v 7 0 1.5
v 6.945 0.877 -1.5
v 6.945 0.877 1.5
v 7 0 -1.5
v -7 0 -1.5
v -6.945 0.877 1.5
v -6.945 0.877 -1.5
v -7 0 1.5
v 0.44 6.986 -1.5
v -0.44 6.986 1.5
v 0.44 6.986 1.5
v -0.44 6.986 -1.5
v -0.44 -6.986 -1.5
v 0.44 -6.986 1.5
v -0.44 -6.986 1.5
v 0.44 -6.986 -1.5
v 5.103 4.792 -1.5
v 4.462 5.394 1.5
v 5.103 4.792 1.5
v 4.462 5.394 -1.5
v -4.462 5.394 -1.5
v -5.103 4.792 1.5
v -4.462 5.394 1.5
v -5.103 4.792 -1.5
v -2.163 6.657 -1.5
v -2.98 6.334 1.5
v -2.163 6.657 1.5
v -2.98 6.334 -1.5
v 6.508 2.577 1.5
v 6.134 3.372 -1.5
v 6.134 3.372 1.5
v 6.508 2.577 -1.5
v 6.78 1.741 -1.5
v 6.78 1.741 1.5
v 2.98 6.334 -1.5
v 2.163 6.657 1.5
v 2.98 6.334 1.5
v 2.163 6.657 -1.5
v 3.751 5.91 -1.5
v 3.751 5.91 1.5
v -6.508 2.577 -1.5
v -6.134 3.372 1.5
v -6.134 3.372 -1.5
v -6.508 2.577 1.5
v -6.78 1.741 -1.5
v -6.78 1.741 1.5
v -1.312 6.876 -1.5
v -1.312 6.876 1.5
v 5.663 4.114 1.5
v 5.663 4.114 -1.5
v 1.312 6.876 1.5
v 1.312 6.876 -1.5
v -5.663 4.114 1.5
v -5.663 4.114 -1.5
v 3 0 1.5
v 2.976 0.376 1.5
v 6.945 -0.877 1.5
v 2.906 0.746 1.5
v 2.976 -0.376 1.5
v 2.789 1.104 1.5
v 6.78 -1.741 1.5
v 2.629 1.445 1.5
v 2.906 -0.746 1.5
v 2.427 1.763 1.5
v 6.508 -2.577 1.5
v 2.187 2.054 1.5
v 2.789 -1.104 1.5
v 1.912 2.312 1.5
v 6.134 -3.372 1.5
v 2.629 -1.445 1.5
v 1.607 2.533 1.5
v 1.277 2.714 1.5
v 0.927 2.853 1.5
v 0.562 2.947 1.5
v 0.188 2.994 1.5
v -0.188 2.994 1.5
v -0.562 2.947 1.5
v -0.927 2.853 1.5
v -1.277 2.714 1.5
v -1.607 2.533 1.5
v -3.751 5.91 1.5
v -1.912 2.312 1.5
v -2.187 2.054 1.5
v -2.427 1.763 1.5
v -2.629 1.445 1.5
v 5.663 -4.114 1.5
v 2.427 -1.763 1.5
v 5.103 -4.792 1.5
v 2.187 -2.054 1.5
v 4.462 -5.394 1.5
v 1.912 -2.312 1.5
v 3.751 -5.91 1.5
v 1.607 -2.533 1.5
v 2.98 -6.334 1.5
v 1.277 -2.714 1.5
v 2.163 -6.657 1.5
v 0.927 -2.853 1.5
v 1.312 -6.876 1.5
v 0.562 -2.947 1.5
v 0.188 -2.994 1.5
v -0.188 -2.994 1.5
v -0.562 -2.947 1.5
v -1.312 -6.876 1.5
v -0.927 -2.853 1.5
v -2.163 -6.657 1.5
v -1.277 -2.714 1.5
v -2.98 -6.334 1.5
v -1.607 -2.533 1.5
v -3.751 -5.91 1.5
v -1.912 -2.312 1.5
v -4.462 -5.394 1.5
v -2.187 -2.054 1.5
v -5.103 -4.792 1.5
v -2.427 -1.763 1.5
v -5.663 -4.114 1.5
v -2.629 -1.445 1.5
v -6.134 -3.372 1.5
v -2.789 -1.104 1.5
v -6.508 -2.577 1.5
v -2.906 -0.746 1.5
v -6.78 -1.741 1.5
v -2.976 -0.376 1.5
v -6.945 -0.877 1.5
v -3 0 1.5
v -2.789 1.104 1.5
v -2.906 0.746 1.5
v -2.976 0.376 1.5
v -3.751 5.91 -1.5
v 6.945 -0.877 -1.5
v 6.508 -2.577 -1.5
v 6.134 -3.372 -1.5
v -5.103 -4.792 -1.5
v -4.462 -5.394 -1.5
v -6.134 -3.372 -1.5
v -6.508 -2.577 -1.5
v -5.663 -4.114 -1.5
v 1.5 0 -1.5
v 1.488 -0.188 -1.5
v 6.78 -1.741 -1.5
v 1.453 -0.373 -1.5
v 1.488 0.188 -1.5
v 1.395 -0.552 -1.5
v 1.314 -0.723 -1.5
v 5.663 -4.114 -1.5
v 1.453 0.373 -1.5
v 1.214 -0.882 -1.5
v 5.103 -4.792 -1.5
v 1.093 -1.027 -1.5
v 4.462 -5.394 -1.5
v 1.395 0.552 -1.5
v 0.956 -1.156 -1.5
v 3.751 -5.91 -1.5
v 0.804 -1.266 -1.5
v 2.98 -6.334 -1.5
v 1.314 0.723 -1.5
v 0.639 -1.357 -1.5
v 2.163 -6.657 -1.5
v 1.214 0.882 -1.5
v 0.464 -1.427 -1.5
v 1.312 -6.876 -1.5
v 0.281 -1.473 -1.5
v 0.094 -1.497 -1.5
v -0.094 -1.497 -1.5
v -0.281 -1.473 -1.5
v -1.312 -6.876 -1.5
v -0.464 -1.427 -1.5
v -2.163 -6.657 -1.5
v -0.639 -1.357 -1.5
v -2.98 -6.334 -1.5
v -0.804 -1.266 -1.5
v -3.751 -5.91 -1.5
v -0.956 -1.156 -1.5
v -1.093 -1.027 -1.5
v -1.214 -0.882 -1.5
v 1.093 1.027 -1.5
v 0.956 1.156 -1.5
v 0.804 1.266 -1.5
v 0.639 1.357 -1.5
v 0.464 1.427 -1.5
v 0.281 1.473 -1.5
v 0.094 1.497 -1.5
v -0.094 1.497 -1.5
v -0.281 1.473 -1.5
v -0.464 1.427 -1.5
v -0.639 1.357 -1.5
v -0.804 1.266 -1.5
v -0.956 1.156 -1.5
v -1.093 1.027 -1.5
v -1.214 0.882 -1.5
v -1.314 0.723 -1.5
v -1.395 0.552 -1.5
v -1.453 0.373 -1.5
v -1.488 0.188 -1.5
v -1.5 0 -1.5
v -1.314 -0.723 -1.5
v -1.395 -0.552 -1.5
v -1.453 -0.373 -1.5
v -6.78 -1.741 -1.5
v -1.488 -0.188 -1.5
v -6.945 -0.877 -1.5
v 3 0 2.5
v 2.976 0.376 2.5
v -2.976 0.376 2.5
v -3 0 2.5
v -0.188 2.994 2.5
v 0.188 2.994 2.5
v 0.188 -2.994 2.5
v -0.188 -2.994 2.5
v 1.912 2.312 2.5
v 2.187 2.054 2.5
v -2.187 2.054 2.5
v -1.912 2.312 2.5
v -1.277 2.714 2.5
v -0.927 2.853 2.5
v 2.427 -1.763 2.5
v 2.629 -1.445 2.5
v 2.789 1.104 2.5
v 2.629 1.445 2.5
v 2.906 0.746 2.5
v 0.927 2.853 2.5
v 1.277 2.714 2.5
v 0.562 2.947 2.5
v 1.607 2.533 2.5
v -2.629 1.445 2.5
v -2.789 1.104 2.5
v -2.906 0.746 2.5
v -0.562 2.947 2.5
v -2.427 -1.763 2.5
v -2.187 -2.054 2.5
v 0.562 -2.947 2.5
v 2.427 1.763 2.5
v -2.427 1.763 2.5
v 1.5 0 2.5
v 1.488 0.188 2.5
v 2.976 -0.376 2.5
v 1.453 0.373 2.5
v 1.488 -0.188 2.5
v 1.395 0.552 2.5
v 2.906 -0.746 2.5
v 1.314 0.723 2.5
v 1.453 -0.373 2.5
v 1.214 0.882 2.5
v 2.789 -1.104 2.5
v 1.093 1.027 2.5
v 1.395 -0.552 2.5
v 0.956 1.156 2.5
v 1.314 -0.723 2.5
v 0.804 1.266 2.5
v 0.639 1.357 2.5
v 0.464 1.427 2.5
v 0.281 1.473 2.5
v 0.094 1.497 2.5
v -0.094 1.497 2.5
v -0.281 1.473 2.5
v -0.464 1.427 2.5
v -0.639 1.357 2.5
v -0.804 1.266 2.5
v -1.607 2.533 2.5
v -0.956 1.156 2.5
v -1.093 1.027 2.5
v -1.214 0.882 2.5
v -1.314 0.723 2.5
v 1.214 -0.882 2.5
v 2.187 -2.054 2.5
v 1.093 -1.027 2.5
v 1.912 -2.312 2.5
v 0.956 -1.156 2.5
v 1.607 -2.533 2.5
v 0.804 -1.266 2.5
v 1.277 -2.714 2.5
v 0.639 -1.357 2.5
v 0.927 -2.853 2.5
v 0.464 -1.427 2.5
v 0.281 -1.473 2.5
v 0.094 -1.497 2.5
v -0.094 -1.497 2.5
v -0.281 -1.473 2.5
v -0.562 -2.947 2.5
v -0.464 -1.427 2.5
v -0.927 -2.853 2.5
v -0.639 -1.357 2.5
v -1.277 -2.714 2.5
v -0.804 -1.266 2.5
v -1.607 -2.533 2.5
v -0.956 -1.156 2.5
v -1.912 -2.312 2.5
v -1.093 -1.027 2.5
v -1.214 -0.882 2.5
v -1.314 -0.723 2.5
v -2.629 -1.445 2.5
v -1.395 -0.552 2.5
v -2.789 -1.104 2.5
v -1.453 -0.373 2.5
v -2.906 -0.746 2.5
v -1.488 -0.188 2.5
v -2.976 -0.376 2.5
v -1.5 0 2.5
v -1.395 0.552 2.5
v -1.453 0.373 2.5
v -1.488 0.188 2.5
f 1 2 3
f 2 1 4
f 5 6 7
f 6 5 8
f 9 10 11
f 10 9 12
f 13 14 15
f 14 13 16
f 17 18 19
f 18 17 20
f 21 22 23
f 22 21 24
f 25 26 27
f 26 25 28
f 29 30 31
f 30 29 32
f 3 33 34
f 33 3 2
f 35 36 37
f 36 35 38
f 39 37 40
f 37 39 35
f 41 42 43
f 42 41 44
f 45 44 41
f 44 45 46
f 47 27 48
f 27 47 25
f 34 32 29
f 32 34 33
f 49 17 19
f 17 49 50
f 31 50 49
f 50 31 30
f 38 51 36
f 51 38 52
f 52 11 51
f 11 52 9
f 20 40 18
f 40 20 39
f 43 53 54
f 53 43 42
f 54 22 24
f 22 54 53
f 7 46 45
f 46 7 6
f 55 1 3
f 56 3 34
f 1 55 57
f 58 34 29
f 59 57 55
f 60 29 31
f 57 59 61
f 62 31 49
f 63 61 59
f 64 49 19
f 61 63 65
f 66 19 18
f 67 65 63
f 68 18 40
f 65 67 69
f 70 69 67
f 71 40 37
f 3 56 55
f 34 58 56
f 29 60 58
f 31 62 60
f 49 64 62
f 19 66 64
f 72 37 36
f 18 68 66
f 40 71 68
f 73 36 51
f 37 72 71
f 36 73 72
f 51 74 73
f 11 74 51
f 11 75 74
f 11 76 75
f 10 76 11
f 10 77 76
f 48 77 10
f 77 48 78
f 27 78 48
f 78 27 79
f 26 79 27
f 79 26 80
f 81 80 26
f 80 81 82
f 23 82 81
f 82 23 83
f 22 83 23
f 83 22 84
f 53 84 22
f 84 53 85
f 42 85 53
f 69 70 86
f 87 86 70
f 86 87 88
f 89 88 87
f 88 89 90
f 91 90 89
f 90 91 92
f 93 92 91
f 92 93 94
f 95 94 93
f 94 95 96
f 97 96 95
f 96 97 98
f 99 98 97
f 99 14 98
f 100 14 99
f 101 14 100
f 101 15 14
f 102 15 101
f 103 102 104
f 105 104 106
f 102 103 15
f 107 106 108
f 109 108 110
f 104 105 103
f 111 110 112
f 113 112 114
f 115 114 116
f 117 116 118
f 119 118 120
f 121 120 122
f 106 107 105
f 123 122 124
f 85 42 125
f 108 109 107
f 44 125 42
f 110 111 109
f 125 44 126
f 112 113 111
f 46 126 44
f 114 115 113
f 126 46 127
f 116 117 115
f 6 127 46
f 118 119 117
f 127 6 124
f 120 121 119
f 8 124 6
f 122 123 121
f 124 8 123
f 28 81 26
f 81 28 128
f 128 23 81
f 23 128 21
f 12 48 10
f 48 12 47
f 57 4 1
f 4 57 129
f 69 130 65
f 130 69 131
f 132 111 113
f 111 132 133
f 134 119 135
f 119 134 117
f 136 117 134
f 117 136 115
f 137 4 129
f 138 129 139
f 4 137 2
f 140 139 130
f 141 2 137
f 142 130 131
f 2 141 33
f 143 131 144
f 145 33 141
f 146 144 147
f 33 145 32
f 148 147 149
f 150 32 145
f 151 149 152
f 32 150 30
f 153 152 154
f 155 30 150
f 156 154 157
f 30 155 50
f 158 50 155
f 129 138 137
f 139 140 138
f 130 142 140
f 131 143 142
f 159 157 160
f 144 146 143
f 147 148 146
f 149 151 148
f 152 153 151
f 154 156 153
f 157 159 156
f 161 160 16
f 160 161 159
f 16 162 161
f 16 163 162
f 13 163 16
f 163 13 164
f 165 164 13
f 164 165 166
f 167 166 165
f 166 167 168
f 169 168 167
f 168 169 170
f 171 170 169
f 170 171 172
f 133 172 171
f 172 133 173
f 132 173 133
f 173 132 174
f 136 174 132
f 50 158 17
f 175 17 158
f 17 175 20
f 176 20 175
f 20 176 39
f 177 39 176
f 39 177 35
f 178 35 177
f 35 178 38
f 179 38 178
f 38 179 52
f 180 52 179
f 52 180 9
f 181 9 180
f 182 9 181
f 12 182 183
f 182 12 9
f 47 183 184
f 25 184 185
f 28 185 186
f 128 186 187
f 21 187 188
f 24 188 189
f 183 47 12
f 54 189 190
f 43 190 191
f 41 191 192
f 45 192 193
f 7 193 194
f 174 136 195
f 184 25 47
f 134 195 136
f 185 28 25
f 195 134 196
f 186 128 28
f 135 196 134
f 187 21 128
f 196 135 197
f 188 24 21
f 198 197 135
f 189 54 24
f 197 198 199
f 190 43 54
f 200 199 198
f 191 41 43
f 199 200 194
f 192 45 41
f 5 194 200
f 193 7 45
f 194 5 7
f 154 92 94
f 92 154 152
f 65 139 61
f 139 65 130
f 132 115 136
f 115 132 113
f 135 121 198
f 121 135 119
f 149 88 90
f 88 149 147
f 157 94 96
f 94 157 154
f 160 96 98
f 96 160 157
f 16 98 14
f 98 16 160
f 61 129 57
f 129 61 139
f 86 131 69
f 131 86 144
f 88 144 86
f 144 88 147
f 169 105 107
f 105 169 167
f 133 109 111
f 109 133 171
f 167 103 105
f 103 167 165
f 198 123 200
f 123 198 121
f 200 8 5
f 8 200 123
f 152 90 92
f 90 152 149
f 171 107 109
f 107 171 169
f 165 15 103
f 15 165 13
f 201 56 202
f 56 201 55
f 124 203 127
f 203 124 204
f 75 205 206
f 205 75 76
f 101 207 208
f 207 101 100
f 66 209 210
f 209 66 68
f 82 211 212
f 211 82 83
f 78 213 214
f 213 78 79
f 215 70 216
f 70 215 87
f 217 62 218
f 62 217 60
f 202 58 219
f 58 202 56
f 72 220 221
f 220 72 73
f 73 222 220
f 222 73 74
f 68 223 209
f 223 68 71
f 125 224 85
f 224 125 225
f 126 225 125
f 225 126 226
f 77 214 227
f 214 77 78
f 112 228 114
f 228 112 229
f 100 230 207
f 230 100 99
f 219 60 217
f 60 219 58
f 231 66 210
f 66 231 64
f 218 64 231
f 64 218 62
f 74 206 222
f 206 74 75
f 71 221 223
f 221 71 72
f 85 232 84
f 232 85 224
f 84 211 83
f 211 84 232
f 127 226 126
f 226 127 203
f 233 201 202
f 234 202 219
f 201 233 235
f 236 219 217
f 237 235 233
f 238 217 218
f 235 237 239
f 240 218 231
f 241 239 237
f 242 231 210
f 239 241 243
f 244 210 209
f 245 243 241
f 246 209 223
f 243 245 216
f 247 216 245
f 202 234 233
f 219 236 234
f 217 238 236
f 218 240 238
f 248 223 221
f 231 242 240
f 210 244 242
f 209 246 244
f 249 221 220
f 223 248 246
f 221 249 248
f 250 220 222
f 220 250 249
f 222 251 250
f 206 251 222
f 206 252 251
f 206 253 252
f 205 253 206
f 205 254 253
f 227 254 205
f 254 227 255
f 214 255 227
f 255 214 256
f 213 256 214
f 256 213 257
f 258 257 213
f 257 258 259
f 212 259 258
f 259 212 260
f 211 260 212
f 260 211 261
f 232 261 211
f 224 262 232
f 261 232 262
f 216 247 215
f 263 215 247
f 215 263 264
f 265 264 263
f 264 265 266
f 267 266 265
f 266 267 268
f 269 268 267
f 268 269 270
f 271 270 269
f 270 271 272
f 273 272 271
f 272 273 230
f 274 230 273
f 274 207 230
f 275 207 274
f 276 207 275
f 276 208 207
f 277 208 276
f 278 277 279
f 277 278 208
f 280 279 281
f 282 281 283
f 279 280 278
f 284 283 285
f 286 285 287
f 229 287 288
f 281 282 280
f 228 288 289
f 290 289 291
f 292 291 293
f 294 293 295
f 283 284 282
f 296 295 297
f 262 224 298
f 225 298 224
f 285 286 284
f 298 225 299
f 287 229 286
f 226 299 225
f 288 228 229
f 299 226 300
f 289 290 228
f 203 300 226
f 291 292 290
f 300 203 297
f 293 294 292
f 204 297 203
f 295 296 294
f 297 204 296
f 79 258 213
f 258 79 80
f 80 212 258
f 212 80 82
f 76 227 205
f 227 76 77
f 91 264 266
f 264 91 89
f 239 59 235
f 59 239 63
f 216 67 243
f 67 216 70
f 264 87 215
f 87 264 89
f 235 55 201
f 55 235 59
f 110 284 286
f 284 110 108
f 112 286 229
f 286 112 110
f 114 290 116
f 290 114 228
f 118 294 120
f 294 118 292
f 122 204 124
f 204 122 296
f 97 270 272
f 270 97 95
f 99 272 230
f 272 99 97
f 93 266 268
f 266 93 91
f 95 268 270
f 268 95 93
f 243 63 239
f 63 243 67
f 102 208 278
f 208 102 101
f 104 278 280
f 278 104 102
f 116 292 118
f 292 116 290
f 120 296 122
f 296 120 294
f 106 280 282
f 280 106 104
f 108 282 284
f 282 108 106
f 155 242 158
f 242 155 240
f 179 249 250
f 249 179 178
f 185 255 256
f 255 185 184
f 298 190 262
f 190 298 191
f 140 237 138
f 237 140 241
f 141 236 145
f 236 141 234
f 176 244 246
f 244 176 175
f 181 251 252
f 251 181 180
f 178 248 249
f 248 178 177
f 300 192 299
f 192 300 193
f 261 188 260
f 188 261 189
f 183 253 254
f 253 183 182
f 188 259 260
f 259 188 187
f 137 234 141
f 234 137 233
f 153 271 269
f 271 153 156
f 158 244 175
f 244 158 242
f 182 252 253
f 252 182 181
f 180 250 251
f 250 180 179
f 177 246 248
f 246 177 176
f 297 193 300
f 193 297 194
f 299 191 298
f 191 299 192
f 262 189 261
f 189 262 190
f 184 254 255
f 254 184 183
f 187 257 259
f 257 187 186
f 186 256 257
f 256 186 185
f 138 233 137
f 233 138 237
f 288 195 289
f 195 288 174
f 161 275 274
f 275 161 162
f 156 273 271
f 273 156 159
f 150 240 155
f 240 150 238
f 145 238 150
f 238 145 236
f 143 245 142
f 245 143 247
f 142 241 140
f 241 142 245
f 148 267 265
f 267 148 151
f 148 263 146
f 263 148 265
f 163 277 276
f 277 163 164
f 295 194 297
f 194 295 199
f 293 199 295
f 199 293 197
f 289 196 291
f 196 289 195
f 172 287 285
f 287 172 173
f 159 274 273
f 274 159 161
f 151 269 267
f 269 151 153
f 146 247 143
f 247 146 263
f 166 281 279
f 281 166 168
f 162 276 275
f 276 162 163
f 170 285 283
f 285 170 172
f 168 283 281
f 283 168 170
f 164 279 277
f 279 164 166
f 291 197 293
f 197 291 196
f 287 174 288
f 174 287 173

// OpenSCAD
$fn = 50;


difference() {
	union() {
		translate(v = [0, 0, -1.5000000000]) {
			rotate(a = [0, 0, 0]) {
				cylinder(h = 3, r = 7.0000000000);
			}
		}
		translate(v = [0, 0, -1.5000000000]) {
			rotate(a = [0, 0, 0]) {
				cylinder(h = 4, r = 3.0000000000);
			}
		}
	}
	union() {
		translate(v = [0, 0, -125.0000000000]) {
			rotate(a = [0, 0, 0]) {
				cylinder(h = 250, r = 1.5000000000);
			}
		}
	}
}
